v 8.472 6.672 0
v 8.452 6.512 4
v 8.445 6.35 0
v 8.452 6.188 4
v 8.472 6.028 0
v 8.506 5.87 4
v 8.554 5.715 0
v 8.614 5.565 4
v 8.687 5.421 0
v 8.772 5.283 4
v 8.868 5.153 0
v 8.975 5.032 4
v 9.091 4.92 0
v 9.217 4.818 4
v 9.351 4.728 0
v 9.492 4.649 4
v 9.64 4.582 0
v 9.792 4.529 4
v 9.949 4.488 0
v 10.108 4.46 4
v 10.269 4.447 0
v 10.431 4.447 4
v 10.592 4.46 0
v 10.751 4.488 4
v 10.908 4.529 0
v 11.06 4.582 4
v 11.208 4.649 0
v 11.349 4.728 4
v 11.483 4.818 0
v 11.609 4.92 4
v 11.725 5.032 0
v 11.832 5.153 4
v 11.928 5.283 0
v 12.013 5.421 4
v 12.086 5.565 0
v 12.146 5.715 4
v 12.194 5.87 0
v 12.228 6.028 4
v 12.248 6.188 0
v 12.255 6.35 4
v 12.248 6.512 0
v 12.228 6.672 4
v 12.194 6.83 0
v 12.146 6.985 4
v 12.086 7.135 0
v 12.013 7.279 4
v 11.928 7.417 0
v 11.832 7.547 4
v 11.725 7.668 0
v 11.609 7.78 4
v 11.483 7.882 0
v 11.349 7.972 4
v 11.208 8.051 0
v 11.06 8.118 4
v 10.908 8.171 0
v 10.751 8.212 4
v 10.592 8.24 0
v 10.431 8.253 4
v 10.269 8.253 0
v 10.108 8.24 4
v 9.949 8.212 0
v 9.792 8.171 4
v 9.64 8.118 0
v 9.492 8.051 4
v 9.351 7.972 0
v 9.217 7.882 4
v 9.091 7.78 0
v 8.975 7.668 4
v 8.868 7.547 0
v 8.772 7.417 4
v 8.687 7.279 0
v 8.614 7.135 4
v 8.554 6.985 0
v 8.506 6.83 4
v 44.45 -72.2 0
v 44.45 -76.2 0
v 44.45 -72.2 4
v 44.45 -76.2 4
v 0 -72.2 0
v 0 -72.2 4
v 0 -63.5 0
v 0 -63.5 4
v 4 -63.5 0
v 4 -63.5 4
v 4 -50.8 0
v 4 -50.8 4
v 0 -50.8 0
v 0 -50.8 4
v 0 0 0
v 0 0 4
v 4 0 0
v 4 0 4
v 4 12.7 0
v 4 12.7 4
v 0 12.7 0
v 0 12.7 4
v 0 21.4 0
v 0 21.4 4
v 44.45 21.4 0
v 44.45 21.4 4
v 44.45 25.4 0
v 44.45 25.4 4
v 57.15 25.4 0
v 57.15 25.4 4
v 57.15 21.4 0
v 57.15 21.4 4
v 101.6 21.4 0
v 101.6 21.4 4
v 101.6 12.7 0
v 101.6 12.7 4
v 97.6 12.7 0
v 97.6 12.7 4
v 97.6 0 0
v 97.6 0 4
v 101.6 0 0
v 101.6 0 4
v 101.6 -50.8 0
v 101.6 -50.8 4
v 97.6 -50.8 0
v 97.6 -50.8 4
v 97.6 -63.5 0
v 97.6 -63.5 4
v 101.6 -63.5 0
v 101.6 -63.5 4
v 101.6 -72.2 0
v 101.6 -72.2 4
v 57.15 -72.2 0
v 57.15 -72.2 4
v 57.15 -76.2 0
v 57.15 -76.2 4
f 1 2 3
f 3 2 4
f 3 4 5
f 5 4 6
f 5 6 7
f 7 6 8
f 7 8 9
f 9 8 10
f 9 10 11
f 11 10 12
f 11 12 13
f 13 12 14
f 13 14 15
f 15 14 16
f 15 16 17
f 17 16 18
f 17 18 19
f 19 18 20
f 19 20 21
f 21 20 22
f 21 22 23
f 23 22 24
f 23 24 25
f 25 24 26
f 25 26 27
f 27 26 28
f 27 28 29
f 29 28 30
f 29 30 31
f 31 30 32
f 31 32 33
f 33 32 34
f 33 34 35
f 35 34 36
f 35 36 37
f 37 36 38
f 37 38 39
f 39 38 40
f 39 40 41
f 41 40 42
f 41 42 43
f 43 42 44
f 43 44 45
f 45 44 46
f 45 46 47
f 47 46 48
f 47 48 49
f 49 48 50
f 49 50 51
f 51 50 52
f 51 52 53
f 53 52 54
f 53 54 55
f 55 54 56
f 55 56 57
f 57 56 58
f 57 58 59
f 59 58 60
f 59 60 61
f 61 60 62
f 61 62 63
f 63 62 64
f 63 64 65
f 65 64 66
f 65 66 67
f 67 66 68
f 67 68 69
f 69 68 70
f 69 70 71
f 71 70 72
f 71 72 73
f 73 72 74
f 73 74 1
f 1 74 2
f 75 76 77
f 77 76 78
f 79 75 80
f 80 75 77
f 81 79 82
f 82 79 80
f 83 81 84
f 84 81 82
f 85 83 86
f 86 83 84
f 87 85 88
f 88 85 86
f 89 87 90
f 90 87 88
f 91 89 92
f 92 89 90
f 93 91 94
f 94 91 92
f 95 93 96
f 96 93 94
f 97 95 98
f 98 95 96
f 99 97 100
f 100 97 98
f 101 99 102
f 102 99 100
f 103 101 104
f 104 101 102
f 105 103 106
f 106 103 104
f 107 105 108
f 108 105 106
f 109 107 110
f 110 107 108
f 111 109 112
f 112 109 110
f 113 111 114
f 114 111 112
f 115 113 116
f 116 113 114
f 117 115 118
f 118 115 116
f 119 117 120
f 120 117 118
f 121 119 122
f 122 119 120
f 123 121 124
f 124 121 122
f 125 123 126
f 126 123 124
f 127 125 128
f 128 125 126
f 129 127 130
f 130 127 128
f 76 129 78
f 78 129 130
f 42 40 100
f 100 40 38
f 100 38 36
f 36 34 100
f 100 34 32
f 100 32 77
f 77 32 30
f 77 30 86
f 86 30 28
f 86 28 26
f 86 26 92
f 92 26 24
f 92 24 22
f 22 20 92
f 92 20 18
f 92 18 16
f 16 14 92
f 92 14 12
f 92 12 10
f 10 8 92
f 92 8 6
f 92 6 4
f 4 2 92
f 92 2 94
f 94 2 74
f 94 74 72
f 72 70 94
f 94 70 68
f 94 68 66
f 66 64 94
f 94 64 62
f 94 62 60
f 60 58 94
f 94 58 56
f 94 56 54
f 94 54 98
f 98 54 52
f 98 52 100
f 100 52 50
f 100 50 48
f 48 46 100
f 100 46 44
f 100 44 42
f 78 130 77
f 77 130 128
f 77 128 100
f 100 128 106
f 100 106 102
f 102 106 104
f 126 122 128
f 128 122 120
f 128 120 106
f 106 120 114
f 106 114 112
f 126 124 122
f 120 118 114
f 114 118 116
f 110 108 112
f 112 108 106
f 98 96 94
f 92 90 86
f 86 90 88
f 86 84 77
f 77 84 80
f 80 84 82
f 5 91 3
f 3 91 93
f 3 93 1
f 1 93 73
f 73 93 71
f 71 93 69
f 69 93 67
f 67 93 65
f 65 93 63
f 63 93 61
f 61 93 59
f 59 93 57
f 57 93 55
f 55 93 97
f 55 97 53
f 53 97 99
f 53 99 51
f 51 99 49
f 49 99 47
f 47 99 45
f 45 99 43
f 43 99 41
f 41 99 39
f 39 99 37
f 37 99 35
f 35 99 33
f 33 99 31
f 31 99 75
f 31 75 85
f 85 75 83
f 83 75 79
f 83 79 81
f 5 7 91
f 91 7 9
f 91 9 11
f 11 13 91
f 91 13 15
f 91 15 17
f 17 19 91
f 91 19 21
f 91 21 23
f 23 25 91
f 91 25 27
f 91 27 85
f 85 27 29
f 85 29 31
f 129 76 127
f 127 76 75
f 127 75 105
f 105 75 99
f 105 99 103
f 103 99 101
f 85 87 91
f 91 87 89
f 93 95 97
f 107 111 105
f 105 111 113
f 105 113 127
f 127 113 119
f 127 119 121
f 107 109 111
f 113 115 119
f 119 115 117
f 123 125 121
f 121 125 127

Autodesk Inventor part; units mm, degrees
ref_plane "YZ Plane" through (0, 0, 0) normal (1, 0, 0) x (0, 1, 0)
ref_plane "XZ Plane" through (0, 0, 0) normal (0, 1, 0) x (-1, 0, 0)
ref_plane "XY Plane" through (0, 0, 0) normal (0, 0, 1) x (1, 0, 0)
sketch "Sketch1" plane through (0, 0, 0) normal (0, 0, 1) x (1, 0, 0)
  line L0 (0, 0) -> (0, -50.8) projected
  line L1 (0, -50.8) -> (4, -50.8) projected
  line L2 (4, 0) -> (4, -50.8) projected
  line L3 (0, 0) -> (4, 0) projected
  line L4 (0, -63.5) -> (0, -72.2) projected
  line L5 (0, -72.2) -> (4, -72.2) projected
  line L6 (4, -63.5) -> (4, -72.2) projected
  line L7 (0, -63.5) -> (4, -63.5) projected
  line L8 (0, 21.4) -> (0, 12.7) projected
  line L9 (0, 12.7) -> (4, 12.7) projected
  line L10 (4, 21.4) -> (4, 12.7) projected
  line L11 (0, 21.4) -> (4, 21.4) projected
  line L12 (44.45, 25.4) -> (57.15, 25.4) projected
  line L13 (44.45, 25.4) -> (44.45, 21.4) projected
  line L14 (44.45, 21.4) -> (57.15, 21.4) projected
  line L15 (57.15, 25.4) -> (57.15, 21.4) projected
  line L16 (44.45, -76.2) -> (57.15, -76.2) projected
  line L17 (57.15, -76.2) -> (57.15, -72.2) projected
  line L18 (44.45, -72.2) -> (57.15, -72.2) projected
  line L19 (44.45, -76.2) -> (44.45, -72.2) projected
  line L20 (101.6, 21.4) -> (4, 21.4)
  line L21 (4, 21.4) -> (4, -72.2)
  line L22 (4, -72.2) -> (101.6, -72.2)
  line L23 (101.6, -72.2) -> (101.6, 21.4)
  line L24 (50.8, 21.4) -> (50.8, -72.2)
  line L25 (101.6, 0) -> (101.6, -50.8)
  line L26 (101.6, -50.8) -> (97.6, -50.8)
  line L27 (97.6, 0) -> (97.6, -50.8)
  line L28 (101.6, 0) -> (97.6, 0)
  line L29 (101.6, -63.5) -> (101.6, -72.2)
  line L30 (101.6, -72.2) -> (97.6, -72.2)
  line L31 (97.6, -63.5) -> (97.6, -72.2)
  line L32 (101.6, -63.5) -> (97.6, -63.5)
  line L33 (101.6, 21.4) -> (101.6, 12.7)
  line L34 (101.6, 12.7) -> (97.6, 12.7)
  line L35 (101.6, 21.4) -> (97.6, 21.4)
  line L36 (97.6, 12.7) -> (97.6, 21.4)
  line L37 (97.6, 12.7) -> (97.6, 0)
  line L38 (97.6, -50.8) -> (97.6, -63.5)
extrude "Extrusion1" add sketch "Sketch1" along normal blind 4 contours L3 L2 L1 L0 | L21 L10 L20 L14 L24 L18 L22 L6 L2 | L9 L8 L11 L10 | L6 L5 L4 L7 | L13 L12 L15 L14 | L18 L17 L16 L19 | L14 L20 L36 L37 L27 L38 L31 L22 L18 L24 | L20 L23 L34 L36 | L31 L32 L23 L22 | L28 L23 L26 L27
ref_plane "Work Plane1" through (50.8, -50.8, 0) normal (1, 0, 0) x (0, 0, -1)
sketch "Sketch2" plane through (0, 0, 4) normal (0, 0, 1) x (1, 0, 0)
  circle A0 centre (10.35, 6.35) radius 1.905
  line L0 (4, 12.7) -> (4, 0) projected
  point P0 (0, 0)
  point P1 (4, 6.35)
  point P2 (4, 6.35)
  dimension "d2" = 3.81
  dimension "d3" = 6.35
extrude "Extrusion2" cut sketch "Sketch2" against normal through all
properties part number "Left Panel" material "Wood (Cherry)"
